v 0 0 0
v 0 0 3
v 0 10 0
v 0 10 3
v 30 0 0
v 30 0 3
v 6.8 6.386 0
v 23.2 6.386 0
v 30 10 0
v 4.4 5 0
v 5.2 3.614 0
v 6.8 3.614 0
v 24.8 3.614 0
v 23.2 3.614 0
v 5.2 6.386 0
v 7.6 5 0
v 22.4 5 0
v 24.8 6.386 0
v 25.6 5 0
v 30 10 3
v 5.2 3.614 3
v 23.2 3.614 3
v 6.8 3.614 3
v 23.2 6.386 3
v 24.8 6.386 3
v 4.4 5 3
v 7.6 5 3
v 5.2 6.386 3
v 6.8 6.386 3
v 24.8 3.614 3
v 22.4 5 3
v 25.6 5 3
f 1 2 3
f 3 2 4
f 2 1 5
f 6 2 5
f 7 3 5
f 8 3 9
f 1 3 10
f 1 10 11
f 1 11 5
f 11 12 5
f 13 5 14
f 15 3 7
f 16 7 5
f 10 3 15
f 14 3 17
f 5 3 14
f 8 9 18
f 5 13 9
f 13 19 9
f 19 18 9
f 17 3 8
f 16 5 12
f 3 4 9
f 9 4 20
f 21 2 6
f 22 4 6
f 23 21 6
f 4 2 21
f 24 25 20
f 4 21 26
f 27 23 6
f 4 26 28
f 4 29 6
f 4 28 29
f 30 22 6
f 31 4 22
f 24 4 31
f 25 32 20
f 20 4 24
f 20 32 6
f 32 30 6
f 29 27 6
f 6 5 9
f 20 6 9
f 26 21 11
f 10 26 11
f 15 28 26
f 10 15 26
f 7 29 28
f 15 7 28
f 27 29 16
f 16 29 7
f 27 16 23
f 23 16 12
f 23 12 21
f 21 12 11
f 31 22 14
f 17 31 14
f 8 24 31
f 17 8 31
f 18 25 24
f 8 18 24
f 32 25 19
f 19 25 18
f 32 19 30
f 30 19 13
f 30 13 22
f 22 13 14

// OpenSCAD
difference()
{
cube([30, 10, 3]);

for (x = [6, 24])
	{
		translate( [x, 5, 0])
			cylinder(r= 3.2/2, h=6, $f=100);	
	}
}
